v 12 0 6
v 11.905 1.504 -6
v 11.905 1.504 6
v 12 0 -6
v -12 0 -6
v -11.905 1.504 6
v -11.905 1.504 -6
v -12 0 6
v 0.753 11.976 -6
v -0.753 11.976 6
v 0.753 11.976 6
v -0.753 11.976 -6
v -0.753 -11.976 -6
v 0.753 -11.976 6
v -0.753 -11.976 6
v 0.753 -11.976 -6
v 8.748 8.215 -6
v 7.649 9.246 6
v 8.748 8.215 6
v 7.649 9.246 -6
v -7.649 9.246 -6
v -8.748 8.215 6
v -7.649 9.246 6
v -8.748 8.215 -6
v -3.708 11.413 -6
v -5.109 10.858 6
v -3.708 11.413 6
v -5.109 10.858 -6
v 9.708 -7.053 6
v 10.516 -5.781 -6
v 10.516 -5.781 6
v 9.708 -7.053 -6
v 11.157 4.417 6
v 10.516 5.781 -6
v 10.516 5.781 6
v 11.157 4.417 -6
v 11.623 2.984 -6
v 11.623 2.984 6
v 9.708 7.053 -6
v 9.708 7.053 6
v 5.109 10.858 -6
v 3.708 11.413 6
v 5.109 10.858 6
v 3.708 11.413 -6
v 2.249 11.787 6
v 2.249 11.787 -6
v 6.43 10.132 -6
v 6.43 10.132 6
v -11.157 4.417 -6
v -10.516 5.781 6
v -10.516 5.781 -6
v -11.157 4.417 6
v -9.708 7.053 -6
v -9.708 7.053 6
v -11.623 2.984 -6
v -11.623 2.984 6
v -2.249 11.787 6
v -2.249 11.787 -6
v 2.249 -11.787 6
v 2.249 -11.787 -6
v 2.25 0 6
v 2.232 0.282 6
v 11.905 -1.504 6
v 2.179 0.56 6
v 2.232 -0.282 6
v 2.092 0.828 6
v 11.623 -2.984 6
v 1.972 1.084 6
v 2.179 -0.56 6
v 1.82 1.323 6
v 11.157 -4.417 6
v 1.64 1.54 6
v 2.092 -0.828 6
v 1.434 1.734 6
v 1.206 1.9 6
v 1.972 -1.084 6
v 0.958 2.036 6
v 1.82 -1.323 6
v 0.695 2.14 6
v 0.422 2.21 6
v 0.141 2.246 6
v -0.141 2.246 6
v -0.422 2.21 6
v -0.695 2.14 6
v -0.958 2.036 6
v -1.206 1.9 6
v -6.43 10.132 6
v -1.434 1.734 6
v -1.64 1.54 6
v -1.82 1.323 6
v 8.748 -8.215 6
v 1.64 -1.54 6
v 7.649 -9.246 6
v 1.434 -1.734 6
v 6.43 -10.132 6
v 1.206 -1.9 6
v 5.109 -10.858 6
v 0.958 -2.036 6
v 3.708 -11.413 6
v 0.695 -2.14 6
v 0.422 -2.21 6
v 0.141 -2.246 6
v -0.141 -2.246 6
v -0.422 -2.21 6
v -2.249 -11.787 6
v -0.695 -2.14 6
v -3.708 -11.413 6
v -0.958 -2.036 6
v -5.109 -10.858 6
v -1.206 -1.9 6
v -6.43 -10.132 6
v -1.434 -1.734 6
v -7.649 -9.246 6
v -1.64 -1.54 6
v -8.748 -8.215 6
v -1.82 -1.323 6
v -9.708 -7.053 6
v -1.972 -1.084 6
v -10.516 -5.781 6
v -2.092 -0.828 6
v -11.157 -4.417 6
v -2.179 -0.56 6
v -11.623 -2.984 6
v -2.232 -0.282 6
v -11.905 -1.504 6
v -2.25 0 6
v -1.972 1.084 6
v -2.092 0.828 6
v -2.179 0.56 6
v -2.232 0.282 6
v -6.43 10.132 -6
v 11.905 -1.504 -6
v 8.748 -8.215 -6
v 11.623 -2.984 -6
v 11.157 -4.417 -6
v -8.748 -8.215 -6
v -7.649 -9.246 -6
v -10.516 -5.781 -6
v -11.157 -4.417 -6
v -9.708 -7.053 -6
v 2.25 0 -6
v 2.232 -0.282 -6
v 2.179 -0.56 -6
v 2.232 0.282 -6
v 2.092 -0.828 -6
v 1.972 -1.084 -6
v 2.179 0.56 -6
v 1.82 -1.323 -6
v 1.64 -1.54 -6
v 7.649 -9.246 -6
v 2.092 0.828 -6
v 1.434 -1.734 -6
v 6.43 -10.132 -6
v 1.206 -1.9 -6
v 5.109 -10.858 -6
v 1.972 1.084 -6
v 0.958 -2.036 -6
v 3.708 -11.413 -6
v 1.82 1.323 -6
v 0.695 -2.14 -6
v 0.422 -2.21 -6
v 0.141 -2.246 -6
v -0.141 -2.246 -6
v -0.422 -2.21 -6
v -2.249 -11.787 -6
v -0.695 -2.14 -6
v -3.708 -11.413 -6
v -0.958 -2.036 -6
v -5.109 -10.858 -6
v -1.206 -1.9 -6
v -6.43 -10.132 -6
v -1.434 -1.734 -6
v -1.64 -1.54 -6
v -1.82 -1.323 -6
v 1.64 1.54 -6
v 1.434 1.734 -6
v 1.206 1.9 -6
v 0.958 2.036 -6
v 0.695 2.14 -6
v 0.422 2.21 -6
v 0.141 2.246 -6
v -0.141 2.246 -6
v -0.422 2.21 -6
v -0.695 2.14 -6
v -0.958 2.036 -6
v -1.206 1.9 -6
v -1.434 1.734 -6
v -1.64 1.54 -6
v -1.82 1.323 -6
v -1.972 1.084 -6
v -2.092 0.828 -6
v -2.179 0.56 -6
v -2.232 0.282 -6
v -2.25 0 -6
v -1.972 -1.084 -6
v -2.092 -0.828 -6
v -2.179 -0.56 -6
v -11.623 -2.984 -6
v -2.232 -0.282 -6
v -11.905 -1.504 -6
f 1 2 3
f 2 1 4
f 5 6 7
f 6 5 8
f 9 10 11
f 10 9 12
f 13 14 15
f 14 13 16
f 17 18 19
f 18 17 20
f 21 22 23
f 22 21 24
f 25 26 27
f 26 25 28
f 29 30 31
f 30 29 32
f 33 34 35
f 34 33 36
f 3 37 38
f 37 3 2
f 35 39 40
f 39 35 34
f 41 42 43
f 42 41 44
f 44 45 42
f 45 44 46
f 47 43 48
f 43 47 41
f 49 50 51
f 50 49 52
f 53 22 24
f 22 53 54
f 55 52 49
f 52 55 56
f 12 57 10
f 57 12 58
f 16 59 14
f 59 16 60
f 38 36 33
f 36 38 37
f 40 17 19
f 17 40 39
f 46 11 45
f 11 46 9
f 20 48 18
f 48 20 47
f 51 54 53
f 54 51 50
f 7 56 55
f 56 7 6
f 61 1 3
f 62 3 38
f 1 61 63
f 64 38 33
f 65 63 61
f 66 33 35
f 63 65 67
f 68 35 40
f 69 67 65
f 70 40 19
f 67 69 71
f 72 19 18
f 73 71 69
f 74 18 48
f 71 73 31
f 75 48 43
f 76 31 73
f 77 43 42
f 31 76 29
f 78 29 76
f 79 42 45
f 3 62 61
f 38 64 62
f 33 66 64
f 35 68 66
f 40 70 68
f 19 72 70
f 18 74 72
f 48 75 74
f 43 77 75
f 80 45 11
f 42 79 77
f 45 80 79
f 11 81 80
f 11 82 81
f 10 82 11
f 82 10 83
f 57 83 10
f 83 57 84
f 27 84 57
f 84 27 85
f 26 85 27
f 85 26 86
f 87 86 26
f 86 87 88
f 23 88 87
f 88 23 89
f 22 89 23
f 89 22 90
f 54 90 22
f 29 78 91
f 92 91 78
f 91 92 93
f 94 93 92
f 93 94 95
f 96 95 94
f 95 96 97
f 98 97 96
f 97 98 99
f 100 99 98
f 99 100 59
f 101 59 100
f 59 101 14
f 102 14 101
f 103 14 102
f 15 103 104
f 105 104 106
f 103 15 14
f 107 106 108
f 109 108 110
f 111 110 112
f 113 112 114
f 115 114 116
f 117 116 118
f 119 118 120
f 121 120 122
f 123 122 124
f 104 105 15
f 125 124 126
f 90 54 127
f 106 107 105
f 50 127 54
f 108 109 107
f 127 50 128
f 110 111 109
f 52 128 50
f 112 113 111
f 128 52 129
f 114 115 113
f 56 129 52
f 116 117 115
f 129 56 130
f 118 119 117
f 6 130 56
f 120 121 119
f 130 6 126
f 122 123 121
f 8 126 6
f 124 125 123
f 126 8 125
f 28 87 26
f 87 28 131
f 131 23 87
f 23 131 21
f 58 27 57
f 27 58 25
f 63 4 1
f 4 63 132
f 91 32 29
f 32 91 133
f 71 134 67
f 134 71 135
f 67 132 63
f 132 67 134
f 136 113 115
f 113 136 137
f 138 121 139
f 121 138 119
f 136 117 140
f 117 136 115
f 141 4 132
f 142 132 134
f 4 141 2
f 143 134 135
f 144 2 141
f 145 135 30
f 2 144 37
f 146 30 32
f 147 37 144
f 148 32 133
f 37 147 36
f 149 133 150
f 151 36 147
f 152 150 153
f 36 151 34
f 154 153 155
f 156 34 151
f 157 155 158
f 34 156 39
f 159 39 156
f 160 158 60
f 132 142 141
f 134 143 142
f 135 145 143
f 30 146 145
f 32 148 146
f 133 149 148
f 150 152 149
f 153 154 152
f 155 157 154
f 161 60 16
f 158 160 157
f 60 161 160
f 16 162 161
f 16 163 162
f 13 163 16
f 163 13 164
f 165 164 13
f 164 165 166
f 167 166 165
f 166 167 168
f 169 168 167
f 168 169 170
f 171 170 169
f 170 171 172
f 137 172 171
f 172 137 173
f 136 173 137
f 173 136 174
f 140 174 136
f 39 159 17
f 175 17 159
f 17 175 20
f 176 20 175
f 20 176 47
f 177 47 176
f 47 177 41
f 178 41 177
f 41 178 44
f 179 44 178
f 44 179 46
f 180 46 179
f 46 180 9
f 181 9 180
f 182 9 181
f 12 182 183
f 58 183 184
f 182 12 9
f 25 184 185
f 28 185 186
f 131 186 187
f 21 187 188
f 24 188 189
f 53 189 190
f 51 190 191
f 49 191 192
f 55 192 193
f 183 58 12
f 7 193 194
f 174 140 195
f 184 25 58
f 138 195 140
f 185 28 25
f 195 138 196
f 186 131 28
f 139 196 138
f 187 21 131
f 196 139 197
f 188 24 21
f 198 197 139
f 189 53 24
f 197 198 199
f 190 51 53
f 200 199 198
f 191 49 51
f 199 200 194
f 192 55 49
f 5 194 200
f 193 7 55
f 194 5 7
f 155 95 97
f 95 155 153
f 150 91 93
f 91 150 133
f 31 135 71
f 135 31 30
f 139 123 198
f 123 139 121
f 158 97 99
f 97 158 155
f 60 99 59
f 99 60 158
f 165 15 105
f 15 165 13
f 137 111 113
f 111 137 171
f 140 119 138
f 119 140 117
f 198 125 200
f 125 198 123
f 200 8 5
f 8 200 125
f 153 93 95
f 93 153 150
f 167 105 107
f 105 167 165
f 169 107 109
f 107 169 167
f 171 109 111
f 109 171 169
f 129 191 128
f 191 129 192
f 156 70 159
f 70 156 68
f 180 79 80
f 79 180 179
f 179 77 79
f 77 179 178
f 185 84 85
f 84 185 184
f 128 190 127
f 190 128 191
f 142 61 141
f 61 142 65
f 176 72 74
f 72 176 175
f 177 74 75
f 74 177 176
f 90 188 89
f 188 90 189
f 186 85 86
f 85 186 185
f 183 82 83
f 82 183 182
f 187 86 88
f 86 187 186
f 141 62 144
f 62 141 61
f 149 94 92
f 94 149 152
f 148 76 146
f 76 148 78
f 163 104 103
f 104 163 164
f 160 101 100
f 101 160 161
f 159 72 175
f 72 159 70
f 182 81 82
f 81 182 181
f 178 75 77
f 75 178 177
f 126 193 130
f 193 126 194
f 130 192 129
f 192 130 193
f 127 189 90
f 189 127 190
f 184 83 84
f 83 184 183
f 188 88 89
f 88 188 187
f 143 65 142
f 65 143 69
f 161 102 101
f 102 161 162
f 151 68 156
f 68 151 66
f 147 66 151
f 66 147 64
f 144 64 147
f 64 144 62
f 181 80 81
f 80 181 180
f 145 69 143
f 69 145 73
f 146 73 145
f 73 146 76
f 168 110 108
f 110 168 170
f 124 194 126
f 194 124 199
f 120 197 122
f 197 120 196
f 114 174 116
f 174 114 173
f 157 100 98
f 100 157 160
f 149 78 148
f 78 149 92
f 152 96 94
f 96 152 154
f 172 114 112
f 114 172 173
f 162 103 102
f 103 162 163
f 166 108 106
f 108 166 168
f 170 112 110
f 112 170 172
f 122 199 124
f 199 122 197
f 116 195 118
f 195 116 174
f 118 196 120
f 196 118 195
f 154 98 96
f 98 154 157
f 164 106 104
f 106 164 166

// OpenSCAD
$fn = 50;


difference() {
	union() {
		translate(v = [0, 0, -6.0000000000]) {
			cylinder(h = 12, r = 12.0000000000);
		}
	}
	union() {
		translate(v = [0, 0, -100.0000000000]) {
			cylinder(h = 200, r = 2.2500000000);
		}
	}
}
